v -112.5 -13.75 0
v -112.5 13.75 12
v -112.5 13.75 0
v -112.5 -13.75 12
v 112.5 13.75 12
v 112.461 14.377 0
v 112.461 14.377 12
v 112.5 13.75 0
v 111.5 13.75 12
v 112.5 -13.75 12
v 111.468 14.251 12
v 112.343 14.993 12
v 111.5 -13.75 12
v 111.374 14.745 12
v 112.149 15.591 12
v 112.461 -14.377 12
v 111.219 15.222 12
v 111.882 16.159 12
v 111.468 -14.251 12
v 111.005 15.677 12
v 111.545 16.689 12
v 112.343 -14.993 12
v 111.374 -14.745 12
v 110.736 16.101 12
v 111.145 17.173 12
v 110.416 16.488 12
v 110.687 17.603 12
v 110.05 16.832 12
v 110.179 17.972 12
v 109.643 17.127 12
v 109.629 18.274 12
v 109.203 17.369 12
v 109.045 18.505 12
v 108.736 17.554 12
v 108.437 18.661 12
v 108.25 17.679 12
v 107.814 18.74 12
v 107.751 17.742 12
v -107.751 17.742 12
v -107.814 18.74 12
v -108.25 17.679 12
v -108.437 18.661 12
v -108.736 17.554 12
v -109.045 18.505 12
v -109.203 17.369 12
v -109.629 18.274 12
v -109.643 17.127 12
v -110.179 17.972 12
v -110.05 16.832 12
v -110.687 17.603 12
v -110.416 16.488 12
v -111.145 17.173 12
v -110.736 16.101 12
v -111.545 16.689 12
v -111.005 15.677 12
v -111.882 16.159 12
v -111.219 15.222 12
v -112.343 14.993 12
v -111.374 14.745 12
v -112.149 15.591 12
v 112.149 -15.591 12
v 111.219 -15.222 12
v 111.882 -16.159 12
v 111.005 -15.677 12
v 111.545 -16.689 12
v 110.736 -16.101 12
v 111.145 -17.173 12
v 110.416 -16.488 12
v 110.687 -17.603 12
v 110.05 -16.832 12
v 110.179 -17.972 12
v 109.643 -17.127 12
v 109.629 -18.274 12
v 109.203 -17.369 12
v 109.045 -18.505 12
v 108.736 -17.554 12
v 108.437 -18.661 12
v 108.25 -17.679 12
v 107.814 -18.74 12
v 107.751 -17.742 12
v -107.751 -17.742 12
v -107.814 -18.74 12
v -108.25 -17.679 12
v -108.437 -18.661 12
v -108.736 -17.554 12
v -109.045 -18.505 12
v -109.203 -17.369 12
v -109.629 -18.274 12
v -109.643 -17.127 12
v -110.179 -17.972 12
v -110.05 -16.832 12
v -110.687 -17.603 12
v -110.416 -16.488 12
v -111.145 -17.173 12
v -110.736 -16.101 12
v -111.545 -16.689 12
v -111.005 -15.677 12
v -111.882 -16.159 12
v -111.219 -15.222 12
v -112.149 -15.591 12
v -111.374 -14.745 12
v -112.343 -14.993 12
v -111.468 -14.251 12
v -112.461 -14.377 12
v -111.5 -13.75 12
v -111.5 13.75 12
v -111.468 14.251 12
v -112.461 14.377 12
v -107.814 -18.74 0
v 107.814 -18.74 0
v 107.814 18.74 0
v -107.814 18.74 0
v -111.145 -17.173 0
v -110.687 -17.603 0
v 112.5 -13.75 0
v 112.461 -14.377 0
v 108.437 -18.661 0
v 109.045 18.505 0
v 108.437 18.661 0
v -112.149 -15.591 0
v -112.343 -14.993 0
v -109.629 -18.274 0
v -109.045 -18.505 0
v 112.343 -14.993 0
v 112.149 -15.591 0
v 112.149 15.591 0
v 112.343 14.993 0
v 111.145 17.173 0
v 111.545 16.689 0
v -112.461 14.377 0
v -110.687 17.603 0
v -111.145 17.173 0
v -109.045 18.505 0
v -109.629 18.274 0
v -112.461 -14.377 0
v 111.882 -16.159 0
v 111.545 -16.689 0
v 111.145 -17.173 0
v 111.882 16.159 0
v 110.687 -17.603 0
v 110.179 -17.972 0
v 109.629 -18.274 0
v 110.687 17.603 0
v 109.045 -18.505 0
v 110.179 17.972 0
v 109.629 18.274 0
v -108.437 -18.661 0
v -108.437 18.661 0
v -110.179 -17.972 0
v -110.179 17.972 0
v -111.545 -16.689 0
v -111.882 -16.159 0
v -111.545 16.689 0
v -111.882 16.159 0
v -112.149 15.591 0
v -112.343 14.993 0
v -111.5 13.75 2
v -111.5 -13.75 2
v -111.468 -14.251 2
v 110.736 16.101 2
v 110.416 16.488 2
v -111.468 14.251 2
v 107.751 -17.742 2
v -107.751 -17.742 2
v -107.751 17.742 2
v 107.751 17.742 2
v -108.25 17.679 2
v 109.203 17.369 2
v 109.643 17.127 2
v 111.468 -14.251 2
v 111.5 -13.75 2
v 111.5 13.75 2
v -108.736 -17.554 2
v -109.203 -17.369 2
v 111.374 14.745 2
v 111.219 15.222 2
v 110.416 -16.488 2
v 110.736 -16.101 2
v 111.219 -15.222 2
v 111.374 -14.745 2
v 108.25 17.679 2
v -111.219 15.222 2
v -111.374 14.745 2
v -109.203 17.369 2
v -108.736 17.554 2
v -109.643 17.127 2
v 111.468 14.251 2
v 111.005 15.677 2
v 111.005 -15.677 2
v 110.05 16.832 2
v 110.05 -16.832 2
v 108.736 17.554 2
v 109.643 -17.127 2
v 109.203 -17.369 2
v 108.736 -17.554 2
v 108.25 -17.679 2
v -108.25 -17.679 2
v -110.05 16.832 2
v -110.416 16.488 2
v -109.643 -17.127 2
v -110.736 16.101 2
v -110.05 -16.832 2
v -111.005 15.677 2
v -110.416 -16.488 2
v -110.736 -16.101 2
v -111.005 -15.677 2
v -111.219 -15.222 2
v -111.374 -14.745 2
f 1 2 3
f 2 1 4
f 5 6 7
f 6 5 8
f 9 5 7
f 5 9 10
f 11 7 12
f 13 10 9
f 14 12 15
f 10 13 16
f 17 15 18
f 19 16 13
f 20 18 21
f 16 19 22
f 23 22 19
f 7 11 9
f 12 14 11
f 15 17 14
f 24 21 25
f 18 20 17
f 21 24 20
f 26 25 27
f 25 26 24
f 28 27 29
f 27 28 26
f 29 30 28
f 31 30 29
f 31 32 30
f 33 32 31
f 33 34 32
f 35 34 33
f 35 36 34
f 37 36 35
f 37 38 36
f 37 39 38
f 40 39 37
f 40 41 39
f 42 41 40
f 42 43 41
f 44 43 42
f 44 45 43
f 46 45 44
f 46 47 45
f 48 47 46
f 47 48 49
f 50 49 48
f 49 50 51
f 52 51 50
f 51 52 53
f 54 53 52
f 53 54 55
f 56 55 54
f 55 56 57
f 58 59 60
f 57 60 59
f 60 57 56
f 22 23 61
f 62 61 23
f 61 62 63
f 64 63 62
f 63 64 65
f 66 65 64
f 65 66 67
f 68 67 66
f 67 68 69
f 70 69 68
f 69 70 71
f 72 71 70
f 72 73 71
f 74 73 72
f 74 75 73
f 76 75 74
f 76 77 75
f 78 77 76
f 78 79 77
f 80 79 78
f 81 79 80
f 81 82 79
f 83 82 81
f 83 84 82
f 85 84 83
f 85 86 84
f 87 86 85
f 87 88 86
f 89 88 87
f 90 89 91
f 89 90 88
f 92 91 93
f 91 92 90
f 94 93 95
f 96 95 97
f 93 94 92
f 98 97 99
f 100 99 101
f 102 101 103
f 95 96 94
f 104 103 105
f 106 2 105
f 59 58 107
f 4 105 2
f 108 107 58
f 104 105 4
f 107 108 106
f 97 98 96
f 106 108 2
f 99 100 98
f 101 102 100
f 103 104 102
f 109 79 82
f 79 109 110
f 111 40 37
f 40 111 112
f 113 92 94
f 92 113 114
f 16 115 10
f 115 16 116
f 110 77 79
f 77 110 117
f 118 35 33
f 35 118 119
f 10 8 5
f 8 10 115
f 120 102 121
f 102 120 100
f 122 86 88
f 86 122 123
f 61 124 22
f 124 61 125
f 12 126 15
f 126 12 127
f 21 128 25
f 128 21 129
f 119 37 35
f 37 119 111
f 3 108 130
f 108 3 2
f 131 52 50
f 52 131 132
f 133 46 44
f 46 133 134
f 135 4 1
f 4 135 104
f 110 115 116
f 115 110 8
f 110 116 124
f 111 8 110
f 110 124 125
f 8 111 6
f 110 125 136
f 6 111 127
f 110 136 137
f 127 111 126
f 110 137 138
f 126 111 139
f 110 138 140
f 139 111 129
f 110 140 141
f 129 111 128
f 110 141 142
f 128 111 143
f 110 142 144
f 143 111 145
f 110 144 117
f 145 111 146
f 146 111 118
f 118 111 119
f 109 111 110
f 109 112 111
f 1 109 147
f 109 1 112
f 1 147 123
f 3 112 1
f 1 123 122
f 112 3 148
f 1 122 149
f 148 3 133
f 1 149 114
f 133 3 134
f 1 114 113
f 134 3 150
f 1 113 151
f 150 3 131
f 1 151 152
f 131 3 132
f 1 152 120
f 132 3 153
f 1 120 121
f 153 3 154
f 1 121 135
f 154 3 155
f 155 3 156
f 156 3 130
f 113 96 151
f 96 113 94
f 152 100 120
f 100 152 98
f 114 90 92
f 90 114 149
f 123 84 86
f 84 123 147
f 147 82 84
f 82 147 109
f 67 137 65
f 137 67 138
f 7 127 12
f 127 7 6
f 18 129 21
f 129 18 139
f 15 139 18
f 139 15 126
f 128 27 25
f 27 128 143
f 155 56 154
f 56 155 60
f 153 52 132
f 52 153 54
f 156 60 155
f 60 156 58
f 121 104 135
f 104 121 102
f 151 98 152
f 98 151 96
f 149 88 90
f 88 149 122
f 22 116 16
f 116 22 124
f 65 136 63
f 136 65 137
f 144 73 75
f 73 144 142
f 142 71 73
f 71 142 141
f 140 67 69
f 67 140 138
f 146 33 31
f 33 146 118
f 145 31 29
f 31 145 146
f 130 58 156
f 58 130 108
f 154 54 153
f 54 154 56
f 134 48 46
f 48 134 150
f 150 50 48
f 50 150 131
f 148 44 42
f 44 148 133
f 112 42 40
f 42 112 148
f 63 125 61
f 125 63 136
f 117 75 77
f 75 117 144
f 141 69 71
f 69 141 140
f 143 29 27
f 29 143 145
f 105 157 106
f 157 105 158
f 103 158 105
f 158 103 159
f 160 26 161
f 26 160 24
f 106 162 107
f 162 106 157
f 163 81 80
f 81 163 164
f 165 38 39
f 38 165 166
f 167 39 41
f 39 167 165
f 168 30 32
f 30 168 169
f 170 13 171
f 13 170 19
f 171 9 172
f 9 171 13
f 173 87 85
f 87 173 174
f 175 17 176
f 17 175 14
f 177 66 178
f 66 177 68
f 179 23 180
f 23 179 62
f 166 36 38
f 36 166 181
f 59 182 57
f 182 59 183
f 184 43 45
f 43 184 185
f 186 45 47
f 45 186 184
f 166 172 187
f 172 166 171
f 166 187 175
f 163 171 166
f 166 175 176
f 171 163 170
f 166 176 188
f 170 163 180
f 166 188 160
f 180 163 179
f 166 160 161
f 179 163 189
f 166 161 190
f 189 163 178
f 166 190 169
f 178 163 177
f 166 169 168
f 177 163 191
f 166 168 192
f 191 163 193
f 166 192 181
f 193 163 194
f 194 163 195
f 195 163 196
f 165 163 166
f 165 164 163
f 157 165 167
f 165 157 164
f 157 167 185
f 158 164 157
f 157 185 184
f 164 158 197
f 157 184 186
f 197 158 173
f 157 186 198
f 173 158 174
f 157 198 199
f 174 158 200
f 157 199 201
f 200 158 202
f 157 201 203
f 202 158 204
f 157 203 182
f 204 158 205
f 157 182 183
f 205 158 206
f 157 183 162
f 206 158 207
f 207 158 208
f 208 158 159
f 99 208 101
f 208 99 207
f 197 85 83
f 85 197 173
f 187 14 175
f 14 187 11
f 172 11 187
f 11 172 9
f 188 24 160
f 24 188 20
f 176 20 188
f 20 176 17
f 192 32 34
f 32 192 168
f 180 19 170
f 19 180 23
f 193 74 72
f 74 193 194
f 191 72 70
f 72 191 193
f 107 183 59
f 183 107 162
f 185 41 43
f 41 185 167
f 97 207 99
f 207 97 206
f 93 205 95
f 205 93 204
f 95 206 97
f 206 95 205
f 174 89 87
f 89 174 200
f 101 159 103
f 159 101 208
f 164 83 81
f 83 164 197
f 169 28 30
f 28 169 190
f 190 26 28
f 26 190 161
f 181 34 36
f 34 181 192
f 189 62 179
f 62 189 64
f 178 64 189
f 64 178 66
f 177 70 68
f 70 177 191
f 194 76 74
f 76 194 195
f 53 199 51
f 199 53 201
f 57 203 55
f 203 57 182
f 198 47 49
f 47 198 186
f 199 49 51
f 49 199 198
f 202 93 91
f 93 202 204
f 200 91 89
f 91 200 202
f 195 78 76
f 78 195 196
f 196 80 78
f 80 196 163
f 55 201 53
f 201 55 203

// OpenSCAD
$fn = 50;


difference() {
	union() {
		hull() {
			translate(v = [-107.5000000000, 13.7500000000, 0]) {
				cylinder(h = 12, r = 5);
			}
			translate(v = [107.5000000000, 13.7500000000, 0]) {
				cylinder(h = 12, r = 5);
			}
			translate(v = [-107.5000000000, -13.7500000000, 0]) {
				cylinder(h = 12, r = 5);
			}
			translate(v = [107.5000000000, -13.7500000000, 0]) {
				cylinder(h = 12, r = 5);
			}
		}
	}
	union() {
		translate(v = [0, 0, 2]) {
			hull() {
				translate(v = [-107.5000000000, 13.7500000000, 0]) {
					cylinder(h = 10, r = 4);
				}
				translate(v = [107.5000000000, 13.7500000000, 0]) {
					cylinder(h = 10, r = 4);
				}
				translate(v = [-107.5000000000, -13.7500000000, 0]) {
					cylinder(h = 10, r = 4);
				}
				translate(v = [107.5000000000, -13.7500000000, 0]) {
					cylinder(h = 10, r = 4);
				}
			}
		}
	}
}
